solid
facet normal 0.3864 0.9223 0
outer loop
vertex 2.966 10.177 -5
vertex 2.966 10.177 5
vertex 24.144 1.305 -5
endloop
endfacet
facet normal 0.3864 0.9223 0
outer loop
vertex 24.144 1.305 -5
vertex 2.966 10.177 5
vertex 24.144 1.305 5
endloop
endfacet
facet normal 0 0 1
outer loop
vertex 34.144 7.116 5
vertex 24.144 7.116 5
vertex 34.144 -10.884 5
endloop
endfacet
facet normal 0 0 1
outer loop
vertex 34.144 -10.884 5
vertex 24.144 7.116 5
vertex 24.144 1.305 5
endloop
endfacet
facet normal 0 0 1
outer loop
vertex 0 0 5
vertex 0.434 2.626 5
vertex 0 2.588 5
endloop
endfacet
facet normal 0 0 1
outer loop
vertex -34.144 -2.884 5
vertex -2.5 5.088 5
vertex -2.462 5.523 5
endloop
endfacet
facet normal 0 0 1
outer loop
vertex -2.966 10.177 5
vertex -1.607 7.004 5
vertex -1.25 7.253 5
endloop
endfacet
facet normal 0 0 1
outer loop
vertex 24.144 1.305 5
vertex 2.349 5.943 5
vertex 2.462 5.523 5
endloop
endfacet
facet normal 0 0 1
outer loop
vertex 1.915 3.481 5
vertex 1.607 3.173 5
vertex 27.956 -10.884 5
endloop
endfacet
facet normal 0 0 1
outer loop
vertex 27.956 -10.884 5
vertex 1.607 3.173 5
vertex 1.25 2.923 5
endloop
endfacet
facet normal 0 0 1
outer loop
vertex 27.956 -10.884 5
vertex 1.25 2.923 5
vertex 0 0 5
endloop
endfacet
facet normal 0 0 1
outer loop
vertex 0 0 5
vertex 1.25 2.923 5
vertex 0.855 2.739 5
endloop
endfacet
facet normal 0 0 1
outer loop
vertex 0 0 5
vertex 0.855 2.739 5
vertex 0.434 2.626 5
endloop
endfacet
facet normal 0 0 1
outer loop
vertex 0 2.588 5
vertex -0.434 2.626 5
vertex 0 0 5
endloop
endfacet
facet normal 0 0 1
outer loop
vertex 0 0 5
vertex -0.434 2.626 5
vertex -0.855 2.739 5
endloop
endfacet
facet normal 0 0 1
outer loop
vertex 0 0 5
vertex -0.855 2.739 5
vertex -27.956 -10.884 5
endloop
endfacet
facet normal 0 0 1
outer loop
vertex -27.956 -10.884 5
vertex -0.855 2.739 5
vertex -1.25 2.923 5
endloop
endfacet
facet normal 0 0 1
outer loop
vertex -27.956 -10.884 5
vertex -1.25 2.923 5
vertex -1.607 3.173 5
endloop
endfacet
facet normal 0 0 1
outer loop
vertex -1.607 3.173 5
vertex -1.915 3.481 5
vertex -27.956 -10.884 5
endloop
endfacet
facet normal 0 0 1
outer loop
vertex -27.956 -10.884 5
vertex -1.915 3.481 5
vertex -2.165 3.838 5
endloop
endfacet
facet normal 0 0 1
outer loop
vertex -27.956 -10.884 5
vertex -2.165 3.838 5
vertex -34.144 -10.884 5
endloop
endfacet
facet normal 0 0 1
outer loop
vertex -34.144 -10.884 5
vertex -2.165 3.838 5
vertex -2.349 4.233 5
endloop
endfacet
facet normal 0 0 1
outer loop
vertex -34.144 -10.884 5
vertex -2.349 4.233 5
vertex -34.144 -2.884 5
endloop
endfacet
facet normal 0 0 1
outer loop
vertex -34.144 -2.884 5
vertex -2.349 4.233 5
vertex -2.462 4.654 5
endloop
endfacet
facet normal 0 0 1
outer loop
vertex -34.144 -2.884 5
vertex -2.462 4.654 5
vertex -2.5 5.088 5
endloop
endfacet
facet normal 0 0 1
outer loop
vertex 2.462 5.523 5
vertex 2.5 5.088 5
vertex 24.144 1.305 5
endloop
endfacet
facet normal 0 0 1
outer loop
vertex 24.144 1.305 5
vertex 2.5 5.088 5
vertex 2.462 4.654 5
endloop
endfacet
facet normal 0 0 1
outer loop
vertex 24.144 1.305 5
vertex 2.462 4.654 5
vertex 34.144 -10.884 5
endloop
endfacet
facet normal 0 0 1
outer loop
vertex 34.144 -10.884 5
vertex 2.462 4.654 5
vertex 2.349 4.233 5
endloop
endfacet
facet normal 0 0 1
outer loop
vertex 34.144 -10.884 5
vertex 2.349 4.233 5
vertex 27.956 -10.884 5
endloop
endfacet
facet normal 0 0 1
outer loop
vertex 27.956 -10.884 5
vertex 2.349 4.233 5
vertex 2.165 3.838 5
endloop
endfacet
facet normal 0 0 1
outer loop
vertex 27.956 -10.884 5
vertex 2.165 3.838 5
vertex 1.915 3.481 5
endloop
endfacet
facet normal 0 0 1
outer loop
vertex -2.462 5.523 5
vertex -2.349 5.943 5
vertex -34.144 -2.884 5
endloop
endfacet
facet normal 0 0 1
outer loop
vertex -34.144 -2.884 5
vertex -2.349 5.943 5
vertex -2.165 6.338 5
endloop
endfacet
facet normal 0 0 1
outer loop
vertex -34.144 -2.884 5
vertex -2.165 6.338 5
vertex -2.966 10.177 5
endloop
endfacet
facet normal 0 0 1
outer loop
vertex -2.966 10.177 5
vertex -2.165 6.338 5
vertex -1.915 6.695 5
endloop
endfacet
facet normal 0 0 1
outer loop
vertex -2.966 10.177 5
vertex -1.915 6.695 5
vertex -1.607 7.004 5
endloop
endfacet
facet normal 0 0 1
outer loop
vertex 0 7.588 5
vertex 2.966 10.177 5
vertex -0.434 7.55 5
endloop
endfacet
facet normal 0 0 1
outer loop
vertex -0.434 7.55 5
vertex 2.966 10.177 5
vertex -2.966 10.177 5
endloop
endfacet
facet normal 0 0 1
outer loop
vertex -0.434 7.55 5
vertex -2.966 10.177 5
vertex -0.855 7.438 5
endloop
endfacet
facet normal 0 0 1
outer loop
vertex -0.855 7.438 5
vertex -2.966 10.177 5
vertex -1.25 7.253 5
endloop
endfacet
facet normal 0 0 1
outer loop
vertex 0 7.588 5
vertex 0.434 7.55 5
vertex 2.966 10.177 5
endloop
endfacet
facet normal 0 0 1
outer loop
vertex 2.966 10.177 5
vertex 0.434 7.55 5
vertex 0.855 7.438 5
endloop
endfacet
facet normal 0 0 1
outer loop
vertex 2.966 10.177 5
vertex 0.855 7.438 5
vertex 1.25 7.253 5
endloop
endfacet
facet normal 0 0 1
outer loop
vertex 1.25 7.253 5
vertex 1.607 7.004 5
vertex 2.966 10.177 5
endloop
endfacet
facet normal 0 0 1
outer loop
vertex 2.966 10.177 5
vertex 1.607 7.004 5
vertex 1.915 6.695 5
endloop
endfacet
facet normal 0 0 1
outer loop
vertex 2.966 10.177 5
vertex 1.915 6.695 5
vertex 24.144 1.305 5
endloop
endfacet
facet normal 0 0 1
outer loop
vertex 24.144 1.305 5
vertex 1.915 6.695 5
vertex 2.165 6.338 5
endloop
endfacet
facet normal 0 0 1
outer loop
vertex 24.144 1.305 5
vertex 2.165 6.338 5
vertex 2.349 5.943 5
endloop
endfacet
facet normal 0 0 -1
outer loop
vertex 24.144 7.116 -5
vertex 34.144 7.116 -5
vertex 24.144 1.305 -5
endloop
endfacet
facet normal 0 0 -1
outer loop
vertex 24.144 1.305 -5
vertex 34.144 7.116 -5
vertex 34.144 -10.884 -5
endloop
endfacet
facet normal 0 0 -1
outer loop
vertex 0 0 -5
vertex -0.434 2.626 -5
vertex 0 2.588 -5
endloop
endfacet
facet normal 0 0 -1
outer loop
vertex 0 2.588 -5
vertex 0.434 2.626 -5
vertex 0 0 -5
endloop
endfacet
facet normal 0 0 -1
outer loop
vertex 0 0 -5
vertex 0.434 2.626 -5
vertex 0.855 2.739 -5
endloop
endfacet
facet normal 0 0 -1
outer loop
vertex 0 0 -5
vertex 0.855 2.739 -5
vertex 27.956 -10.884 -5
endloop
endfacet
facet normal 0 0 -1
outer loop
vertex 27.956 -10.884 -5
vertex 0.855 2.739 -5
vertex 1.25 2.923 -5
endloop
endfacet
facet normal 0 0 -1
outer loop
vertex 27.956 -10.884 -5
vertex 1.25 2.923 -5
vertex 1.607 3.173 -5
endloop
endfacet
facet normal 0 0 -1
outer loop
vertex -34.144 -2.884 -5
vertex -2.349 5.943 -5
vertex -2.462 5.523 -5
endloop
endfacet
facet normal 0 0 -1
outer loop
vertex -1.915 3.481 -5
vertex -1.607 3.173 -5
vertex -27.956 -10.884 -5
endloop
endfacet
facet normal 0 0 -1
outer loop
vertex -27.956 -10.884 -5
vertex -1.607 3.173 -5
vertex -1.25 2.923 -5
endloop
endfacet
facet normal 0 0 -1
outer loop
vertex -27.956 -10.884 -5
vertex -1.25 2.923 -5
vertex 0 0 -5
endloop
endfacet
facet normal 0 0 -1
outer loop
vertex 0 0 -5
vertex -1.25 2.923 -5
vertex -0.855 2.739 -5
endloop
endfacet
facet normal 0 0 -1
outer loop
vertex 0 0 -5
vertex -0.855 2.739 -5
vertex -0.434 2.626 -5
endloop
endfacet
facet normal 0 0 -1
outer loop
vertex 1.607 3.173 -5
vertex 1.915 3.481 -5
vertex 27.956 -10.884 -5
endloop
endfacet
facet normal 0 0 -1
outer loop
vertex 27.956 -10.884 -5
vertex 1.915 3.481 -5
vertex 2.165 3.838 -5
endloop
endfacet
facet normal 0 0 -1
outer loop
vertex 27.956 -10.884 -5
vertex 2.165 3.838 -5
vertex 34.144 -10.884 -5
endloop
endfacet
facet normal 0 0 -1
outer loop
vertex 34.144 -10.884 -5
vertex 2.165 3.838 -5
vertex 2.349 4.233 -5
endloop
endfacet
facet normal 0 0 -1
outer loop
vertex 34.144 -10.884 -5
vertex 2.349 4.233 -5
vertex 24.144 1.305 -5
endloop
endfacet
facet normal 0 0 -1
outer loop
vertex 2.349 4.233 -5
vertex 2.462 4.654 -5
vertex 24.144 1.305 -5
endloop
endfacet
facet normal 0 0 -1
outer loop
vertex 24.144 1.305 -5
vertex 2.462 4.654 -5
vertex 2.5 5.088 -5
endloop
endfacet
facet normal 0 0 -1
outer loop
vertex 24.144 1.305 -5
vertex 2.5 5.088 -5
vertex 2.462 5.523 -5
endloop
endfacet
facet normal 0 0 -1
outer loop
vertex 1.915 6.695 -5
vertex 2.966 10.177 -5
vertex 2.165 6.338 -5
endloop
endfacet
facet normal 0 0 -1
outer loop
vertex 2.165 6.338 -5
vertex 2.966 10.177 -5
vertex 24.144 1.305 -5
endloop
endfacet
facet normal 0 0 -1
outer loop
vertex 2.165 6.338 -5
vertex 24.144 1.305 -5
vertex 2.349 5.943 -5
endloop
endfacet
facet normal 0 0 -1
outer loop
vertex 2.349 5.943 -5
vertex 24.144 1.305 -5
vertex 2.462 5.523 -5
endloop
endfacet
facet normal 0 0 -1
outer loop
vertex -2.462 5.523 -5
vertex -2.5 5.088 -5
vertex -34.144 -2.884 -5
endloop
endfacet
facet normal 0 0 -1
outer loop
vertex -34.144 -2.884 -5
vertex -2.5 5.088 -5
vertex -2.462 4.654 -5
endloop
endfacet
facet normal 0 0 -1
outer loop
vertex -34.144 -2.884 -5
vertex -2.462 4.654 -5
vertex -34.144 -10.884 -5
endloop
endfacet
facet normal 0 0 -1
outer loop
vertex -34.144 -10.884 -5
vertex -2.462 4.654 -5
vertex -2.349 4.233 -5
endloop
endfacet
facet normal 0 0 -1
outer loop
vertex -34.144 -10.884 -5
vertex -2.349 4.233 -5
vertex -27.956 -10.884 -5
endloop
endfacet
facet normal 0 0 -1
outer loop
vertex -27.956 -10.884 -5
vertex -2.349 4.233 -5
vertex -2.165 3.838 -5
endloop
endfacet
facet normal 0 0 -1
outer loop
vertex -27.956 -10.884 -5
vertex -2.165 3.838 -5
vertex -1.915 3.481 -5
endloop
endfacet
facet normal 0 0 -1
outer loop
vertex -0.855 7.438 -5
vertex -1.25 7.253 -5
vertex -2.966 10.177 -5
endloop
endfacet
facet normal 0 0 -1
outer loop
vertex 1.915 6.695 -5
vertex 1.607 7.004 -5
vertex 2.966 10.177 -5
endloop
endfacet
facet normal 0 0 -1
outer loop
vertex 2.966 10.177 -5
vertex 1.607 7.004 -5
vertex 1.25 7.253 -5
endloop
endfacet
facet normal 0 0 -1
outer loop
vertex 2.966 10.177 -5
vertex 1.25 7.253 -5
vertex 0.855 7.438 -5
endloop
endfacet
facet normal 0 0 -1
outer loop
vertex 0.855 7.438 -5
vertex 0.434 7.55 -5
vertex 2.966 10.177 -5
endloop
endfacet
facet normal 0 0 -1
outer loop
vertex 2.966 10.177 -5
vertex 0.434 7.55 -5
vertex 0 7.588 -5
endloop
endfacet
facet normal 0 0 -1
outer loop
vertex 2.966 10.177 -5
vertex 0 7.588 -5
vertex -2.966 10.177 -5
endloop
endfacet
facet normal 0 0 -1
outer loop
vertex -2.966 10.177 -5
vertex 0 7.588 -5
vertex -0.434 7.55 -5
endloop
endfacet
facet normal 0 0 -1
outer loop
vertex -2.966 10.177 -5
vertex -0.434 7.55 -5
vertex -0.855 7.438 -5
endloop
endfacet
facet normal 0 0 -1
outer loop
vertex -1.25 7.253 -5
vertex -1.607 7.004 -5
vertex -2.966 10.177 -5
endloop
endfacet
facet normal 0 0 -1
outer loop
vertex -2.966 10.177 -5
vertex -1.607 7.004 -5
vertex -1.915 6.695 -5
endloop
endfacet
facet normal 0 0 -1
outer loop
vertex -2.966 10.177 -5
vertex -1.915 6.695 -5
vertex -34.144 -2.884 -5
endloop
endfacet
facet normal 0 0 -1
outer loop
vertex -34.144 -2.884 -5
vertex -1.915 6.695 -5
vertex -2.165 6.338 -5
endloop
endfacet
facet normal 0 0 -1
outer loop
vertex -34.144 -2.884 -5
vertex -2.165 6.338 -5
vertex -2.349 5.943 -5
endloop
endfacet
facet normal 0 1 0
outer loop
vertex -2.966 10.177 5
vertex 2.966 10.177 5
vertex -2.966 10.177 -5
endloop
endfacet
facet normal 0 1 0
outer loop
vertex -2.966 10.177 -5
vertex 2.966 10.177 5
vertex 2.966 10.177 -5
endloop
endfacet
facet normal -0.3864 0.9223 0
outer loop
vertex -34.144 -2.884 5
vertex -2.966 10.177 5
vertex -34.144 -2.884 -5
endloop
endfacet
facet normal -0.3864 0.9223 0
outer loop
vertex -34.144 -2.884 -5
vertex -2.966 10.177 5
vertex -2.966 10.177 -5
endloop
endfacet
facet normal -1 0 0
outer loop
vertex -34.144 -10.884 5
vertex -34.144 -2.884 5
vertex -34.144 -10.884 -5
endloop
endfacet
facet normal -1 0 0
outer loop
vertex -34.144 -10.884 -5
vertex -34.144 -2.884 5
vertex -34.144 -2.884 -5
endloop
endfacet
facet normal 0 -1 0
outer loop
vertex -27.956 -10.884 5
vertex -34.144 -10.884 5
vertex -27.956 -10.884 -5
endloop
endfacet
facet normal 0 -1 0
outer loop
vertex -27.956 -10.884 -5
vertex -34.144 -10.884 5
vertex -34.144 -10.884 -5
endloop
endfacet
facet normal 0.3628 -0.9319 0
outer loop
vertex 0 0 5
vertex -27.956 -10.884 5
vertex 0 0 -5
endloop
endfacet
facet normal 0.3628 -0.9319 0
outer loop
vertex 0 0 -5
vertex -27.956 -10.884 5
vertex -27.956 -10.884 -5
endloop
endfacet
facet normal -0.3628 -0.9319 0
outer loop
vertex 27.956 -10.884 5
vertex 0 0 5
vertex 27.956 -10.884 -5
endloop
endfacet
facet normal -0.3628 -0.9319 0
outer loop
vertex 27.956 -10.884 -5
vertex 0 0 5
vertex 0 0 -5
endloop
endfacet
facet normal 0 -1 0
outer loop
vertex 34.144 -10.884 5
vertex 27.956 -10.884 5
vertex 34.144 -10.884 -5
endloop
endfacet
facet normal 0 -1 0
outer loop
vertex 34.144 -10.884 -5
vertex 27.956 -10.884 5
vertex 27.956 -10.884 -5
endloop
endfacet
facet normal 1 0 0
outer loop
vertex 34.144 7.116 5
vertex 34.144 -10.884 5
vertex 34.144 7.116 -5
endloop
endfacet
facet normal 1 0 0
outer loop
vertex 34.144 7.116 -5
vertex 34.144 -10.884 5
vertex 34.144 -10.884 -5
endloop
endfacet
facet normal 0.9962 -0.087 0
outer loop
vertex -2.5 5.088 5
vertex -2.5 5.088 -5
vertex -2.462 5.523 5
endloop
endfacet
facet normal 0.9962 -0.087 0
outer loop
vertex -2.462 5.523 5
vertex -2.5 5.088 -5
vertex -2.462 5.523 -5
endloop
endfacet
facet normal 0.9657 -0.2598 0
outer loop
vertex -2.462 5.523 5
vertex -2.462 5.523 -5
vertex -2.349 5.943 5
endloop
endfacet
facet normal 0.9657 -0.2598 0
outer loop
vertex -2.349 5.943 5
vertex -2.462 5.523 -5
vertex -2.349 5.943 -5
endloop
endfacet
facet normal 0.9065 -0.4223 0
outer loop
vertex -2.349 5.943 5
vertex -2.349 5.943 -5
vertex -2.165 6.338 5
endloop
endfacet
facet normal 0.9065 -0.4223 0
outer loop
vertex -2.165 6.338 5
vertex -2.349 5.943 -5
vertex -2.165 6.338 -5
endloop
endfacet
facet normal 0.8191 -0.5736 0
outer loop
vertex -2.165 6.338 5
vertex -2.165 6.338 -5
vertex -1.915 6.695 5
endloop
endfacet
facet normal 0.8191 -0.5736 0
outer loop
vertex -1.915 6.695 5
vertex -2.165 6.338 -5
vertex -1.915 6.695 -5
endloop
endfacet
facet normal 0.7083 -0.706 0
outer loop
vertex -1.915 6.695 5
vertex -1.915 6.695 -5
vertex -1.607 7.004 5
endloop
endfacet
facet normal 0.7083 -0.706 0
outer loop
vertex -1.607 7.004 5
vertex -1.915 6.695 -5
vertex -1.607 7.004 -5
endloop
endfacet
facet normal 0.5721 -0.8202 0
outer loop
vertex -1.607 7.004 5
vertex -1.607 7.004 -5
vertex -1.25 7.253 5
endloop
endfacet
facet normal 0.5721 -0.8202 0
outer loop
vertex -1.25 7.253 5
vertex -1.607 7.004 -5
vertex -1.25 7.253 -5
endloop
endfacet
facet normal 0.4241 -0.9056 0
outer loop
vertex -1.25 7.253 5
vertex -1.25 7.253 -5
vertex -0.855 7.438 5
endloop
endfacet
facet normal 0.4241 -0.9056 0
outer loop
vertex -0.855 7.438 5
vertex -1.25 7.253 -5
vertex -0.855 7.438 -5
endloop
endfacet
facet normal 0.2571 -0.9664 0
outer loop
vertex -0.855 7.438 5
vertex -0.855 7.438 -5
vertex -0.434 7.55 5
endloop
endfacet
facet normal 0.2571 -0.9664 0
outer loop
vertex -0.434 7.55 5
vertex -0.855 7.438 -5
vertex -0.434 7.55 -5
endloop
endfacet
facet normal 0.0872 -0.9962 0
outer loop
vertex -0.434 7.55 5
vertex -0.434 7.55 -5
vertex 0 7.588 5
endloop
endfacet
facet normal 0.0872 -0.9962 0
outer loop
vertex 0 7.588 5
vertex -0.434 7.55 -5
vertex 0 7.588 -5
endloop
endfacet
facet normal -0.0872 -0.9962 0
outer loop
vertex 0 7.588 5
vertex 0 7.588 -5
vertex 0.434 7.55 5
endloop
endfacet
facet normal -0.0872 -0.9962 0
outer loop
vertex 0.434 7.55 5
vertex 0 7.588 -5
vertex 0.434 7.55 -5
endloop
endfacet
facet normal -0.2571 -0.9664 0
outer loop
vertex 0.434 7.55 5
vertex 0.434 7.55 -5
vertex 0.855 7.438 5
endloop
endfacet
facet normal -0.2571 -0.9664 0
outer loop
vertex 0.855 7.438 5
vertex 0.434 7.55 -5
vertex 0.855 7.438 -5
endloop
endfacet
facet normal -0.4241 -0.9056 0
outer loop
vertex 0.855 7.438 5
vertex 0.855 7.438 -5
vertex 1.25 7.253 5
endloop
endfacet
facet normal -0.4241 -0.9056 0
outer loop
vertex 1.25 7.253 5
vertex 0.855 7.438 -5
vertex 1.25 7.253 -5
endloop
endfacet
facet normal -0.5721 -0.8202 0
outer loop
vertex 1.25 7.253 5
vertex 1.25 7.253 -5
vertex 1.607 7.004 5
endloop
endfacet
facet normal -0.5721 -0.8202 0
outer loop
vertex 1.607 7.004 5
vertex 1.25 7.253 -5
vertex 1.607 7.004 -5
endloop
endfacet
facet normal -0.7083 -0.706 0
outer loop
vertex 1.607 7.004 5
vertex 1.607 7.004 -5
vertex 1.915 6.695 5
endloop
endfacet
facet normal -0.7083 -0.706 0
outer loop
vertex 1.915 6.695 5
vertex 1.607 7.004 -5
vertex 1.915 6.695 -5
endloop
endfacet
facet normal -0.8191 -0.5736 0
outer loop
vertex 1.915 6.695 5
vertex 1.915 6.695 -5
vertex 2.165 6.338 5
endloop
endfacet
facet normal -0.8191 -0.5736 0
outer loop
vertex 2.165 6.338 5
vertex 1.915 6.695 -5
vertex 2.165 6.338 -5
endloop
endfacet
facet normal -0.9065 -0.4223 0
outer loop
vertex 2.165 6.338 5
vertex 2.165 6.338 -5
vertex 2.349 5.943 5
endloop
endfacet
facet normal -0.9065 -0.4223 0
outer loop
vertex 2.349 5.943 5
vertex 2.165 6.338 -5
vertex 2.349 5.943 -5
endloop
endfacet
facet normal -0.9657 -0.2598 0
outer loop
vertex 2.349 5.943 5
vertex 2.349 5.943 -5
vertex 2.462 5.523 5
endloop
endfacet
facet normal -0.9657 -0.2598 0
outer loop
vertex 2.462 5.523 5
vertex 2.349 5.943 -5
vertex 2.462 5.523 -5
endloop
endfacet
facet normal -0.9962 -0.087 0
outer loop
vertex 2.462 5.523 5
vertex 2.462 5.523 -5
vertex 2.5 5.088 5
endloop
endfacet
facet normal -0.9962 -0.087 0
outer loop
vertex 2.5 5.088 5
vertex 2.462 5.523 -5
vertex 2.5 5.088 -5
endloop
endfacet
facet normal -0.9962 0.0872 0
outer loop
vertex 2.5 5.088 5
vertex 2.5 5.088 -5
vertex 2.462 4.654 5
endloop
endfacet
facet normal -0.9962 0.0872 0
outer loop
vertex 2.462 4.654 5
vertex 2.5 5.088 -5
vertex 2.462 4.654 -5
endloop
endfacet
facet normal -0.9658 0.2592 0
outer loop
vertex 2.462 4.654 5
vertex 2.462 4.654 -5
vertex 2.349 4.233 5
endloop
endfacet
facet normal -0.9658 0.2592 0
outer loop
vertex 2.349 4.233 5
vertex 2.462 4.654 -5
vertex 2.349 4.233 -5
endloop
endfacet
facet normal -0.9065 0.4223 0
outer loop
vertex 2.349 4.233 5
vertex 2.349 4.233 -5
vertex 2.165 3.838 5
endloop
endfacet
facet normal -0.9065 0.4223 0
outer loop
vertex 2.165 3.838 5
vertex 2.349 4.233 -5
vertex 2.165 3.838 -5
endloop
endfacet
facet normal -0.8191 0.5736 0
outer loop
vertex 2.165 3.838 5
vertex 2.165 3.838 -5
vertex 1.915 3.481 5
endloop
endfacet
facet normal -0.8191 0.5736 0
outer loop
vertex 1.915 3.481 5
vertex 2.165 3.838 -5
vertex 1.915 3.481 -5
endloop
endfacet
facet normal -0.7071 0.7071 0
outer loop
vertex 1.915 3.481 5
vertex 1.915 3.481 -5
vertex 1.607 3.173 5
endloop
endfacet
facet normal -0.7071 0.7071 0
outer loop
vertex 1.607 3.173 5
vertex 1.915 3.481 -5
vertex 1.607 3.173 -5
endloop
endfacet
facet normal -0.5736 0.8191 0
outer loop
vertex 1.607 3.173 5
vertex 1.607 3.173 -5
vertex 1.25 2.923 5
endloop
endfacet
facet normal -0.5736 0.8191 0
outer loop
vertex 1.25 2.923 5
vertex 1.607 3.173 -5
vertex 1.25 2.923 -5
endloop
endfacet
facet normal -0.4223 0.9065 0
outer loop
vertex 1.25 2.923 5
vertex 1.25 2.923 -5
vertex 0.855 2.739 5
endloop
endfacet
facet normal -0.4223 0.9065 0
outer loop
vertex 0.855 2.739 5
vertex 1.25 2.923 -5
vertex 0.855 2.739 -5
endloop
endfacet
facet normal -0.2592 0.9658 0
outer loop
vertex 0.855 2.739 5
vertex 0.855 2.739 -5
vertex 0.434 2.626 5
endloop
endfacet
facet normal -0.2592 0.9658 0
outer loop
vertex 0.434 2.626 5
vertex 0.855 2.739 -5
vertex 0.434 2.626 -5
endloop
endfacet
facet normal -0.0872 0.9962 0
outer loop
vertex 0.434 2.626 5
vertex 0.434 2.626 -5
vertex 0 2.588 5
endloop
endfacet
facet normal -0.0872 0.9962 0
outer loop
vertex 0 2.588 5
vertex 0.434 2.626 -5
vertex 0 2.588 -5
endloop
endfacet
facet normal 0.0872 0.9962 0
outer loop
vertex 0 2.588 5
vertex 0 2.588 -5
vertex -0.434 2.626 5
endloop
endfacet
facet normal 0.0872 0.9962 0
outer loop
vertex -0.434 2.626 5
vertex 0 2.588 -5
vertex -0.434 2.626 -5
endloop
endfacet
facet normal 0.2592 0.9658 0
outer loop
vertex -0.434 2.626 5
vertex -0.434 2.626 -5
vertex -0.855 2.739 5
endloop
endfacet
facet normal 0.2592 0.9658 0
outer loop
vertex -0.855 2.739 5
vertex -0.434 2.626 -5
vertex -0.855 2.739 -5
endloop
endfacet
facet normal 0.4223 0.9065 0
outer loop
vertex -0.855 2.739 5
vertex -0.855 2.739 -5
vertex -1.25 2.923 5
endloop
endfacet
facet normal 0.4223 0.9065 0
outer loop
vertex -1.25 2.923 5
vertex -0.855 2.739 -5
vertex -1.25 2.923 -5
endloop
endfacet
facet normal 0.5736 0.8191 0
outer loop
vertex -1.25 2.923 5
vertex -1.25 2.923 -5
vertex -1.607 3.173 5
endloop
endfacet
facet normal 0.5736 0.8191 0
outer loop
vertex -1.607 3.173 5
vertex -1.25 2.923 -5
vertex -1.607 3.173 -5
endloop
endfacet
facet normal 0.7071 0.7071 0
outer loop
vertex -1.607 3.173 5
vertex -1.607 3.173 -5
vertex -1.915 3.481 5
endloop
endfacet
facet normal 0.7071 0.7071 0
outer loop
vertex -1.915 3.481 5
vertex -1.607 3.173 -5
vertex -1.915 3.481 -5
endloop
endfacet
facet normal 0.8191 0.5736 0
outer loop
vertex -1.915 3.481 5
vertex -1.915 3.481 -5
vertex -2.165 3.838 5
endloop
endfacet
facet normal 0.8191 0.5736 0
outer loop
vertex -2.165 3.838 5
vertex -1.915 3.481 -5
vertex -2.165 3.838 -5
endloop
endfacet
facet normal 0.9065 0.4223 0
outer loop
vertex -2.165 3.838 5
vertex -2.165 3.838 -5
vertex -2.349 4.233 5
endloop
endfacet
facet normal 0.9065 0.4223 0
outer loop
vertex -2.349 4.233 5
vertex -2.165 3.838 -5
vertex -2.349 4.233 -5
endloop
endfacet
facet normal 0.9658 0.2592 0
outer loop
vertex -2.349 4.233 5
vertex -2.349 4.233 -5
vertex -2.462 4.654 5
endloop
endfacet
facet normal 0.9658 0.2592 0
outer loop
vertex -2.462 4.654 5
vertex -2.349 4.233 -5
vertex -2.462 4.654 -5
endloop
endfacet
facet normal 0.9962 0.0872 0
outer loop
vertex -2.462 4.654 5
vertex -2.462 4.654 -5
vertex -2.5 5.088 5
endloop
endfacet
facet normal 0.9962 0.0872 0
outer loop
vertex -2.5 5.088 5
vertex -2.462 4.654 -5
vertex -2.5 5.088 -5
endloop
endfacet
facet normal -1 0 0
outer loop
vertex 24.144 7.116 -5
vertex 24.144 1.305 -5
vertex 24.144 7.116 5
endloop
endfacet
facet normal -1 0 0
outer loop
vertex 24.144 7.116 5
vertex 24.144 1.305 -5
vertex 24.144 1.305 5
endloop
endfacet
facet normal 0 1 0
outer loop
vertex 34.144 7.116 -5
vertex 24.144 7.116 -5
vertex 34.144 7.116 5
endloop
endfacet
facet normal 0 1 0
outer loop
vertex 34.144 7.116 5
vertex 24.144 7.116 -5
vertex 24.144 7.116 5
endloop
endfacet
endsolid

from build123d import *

# Parameters (mm, degrees)
SKETCH1_R           = 2.5
BOSS_EXTRUDE1_DEPTH = 5
BOSS_EXTRUDE2_DEPTH = 10


with BuildPart() as part:
    # Sketch1 → Boss-Extrude1 (new, symmetric)
    with BuildSketch(Plane.XY):
        Polygon((0, 0), (27.955990735, -10.884051729), (34.143878012, -10.884051729), (34.143878012, -2.884051729), (2.966226636, 10.176810065), (-2.966226636, 10.176810065), (-34.143878012, -2.884051729), (-34.143878012, -10.884051729), (-27.955990735, -10.884051729), align=None)
        with Locations((0, 5.088405032)):
            Circle(SKETCH1_R, mode=Mode.SUBTRACT)
    extrude(amount=BOSS_EXTRUDE1_DEPTH, both=True)

    # Sketch3 → Boss-Extrude2 (add)
    with BuildSketch(Plane.XY.offset(5)):
        Polygon((34.143878012, -2.884051729), (24.143878012, 1.305122637), (24.143878012, 7.115948271), (34.143878012, 7.115948271), align=None)
    extrude(amount=-BOSS_EXTRUDE2_DEPTH)


solid = part.part
